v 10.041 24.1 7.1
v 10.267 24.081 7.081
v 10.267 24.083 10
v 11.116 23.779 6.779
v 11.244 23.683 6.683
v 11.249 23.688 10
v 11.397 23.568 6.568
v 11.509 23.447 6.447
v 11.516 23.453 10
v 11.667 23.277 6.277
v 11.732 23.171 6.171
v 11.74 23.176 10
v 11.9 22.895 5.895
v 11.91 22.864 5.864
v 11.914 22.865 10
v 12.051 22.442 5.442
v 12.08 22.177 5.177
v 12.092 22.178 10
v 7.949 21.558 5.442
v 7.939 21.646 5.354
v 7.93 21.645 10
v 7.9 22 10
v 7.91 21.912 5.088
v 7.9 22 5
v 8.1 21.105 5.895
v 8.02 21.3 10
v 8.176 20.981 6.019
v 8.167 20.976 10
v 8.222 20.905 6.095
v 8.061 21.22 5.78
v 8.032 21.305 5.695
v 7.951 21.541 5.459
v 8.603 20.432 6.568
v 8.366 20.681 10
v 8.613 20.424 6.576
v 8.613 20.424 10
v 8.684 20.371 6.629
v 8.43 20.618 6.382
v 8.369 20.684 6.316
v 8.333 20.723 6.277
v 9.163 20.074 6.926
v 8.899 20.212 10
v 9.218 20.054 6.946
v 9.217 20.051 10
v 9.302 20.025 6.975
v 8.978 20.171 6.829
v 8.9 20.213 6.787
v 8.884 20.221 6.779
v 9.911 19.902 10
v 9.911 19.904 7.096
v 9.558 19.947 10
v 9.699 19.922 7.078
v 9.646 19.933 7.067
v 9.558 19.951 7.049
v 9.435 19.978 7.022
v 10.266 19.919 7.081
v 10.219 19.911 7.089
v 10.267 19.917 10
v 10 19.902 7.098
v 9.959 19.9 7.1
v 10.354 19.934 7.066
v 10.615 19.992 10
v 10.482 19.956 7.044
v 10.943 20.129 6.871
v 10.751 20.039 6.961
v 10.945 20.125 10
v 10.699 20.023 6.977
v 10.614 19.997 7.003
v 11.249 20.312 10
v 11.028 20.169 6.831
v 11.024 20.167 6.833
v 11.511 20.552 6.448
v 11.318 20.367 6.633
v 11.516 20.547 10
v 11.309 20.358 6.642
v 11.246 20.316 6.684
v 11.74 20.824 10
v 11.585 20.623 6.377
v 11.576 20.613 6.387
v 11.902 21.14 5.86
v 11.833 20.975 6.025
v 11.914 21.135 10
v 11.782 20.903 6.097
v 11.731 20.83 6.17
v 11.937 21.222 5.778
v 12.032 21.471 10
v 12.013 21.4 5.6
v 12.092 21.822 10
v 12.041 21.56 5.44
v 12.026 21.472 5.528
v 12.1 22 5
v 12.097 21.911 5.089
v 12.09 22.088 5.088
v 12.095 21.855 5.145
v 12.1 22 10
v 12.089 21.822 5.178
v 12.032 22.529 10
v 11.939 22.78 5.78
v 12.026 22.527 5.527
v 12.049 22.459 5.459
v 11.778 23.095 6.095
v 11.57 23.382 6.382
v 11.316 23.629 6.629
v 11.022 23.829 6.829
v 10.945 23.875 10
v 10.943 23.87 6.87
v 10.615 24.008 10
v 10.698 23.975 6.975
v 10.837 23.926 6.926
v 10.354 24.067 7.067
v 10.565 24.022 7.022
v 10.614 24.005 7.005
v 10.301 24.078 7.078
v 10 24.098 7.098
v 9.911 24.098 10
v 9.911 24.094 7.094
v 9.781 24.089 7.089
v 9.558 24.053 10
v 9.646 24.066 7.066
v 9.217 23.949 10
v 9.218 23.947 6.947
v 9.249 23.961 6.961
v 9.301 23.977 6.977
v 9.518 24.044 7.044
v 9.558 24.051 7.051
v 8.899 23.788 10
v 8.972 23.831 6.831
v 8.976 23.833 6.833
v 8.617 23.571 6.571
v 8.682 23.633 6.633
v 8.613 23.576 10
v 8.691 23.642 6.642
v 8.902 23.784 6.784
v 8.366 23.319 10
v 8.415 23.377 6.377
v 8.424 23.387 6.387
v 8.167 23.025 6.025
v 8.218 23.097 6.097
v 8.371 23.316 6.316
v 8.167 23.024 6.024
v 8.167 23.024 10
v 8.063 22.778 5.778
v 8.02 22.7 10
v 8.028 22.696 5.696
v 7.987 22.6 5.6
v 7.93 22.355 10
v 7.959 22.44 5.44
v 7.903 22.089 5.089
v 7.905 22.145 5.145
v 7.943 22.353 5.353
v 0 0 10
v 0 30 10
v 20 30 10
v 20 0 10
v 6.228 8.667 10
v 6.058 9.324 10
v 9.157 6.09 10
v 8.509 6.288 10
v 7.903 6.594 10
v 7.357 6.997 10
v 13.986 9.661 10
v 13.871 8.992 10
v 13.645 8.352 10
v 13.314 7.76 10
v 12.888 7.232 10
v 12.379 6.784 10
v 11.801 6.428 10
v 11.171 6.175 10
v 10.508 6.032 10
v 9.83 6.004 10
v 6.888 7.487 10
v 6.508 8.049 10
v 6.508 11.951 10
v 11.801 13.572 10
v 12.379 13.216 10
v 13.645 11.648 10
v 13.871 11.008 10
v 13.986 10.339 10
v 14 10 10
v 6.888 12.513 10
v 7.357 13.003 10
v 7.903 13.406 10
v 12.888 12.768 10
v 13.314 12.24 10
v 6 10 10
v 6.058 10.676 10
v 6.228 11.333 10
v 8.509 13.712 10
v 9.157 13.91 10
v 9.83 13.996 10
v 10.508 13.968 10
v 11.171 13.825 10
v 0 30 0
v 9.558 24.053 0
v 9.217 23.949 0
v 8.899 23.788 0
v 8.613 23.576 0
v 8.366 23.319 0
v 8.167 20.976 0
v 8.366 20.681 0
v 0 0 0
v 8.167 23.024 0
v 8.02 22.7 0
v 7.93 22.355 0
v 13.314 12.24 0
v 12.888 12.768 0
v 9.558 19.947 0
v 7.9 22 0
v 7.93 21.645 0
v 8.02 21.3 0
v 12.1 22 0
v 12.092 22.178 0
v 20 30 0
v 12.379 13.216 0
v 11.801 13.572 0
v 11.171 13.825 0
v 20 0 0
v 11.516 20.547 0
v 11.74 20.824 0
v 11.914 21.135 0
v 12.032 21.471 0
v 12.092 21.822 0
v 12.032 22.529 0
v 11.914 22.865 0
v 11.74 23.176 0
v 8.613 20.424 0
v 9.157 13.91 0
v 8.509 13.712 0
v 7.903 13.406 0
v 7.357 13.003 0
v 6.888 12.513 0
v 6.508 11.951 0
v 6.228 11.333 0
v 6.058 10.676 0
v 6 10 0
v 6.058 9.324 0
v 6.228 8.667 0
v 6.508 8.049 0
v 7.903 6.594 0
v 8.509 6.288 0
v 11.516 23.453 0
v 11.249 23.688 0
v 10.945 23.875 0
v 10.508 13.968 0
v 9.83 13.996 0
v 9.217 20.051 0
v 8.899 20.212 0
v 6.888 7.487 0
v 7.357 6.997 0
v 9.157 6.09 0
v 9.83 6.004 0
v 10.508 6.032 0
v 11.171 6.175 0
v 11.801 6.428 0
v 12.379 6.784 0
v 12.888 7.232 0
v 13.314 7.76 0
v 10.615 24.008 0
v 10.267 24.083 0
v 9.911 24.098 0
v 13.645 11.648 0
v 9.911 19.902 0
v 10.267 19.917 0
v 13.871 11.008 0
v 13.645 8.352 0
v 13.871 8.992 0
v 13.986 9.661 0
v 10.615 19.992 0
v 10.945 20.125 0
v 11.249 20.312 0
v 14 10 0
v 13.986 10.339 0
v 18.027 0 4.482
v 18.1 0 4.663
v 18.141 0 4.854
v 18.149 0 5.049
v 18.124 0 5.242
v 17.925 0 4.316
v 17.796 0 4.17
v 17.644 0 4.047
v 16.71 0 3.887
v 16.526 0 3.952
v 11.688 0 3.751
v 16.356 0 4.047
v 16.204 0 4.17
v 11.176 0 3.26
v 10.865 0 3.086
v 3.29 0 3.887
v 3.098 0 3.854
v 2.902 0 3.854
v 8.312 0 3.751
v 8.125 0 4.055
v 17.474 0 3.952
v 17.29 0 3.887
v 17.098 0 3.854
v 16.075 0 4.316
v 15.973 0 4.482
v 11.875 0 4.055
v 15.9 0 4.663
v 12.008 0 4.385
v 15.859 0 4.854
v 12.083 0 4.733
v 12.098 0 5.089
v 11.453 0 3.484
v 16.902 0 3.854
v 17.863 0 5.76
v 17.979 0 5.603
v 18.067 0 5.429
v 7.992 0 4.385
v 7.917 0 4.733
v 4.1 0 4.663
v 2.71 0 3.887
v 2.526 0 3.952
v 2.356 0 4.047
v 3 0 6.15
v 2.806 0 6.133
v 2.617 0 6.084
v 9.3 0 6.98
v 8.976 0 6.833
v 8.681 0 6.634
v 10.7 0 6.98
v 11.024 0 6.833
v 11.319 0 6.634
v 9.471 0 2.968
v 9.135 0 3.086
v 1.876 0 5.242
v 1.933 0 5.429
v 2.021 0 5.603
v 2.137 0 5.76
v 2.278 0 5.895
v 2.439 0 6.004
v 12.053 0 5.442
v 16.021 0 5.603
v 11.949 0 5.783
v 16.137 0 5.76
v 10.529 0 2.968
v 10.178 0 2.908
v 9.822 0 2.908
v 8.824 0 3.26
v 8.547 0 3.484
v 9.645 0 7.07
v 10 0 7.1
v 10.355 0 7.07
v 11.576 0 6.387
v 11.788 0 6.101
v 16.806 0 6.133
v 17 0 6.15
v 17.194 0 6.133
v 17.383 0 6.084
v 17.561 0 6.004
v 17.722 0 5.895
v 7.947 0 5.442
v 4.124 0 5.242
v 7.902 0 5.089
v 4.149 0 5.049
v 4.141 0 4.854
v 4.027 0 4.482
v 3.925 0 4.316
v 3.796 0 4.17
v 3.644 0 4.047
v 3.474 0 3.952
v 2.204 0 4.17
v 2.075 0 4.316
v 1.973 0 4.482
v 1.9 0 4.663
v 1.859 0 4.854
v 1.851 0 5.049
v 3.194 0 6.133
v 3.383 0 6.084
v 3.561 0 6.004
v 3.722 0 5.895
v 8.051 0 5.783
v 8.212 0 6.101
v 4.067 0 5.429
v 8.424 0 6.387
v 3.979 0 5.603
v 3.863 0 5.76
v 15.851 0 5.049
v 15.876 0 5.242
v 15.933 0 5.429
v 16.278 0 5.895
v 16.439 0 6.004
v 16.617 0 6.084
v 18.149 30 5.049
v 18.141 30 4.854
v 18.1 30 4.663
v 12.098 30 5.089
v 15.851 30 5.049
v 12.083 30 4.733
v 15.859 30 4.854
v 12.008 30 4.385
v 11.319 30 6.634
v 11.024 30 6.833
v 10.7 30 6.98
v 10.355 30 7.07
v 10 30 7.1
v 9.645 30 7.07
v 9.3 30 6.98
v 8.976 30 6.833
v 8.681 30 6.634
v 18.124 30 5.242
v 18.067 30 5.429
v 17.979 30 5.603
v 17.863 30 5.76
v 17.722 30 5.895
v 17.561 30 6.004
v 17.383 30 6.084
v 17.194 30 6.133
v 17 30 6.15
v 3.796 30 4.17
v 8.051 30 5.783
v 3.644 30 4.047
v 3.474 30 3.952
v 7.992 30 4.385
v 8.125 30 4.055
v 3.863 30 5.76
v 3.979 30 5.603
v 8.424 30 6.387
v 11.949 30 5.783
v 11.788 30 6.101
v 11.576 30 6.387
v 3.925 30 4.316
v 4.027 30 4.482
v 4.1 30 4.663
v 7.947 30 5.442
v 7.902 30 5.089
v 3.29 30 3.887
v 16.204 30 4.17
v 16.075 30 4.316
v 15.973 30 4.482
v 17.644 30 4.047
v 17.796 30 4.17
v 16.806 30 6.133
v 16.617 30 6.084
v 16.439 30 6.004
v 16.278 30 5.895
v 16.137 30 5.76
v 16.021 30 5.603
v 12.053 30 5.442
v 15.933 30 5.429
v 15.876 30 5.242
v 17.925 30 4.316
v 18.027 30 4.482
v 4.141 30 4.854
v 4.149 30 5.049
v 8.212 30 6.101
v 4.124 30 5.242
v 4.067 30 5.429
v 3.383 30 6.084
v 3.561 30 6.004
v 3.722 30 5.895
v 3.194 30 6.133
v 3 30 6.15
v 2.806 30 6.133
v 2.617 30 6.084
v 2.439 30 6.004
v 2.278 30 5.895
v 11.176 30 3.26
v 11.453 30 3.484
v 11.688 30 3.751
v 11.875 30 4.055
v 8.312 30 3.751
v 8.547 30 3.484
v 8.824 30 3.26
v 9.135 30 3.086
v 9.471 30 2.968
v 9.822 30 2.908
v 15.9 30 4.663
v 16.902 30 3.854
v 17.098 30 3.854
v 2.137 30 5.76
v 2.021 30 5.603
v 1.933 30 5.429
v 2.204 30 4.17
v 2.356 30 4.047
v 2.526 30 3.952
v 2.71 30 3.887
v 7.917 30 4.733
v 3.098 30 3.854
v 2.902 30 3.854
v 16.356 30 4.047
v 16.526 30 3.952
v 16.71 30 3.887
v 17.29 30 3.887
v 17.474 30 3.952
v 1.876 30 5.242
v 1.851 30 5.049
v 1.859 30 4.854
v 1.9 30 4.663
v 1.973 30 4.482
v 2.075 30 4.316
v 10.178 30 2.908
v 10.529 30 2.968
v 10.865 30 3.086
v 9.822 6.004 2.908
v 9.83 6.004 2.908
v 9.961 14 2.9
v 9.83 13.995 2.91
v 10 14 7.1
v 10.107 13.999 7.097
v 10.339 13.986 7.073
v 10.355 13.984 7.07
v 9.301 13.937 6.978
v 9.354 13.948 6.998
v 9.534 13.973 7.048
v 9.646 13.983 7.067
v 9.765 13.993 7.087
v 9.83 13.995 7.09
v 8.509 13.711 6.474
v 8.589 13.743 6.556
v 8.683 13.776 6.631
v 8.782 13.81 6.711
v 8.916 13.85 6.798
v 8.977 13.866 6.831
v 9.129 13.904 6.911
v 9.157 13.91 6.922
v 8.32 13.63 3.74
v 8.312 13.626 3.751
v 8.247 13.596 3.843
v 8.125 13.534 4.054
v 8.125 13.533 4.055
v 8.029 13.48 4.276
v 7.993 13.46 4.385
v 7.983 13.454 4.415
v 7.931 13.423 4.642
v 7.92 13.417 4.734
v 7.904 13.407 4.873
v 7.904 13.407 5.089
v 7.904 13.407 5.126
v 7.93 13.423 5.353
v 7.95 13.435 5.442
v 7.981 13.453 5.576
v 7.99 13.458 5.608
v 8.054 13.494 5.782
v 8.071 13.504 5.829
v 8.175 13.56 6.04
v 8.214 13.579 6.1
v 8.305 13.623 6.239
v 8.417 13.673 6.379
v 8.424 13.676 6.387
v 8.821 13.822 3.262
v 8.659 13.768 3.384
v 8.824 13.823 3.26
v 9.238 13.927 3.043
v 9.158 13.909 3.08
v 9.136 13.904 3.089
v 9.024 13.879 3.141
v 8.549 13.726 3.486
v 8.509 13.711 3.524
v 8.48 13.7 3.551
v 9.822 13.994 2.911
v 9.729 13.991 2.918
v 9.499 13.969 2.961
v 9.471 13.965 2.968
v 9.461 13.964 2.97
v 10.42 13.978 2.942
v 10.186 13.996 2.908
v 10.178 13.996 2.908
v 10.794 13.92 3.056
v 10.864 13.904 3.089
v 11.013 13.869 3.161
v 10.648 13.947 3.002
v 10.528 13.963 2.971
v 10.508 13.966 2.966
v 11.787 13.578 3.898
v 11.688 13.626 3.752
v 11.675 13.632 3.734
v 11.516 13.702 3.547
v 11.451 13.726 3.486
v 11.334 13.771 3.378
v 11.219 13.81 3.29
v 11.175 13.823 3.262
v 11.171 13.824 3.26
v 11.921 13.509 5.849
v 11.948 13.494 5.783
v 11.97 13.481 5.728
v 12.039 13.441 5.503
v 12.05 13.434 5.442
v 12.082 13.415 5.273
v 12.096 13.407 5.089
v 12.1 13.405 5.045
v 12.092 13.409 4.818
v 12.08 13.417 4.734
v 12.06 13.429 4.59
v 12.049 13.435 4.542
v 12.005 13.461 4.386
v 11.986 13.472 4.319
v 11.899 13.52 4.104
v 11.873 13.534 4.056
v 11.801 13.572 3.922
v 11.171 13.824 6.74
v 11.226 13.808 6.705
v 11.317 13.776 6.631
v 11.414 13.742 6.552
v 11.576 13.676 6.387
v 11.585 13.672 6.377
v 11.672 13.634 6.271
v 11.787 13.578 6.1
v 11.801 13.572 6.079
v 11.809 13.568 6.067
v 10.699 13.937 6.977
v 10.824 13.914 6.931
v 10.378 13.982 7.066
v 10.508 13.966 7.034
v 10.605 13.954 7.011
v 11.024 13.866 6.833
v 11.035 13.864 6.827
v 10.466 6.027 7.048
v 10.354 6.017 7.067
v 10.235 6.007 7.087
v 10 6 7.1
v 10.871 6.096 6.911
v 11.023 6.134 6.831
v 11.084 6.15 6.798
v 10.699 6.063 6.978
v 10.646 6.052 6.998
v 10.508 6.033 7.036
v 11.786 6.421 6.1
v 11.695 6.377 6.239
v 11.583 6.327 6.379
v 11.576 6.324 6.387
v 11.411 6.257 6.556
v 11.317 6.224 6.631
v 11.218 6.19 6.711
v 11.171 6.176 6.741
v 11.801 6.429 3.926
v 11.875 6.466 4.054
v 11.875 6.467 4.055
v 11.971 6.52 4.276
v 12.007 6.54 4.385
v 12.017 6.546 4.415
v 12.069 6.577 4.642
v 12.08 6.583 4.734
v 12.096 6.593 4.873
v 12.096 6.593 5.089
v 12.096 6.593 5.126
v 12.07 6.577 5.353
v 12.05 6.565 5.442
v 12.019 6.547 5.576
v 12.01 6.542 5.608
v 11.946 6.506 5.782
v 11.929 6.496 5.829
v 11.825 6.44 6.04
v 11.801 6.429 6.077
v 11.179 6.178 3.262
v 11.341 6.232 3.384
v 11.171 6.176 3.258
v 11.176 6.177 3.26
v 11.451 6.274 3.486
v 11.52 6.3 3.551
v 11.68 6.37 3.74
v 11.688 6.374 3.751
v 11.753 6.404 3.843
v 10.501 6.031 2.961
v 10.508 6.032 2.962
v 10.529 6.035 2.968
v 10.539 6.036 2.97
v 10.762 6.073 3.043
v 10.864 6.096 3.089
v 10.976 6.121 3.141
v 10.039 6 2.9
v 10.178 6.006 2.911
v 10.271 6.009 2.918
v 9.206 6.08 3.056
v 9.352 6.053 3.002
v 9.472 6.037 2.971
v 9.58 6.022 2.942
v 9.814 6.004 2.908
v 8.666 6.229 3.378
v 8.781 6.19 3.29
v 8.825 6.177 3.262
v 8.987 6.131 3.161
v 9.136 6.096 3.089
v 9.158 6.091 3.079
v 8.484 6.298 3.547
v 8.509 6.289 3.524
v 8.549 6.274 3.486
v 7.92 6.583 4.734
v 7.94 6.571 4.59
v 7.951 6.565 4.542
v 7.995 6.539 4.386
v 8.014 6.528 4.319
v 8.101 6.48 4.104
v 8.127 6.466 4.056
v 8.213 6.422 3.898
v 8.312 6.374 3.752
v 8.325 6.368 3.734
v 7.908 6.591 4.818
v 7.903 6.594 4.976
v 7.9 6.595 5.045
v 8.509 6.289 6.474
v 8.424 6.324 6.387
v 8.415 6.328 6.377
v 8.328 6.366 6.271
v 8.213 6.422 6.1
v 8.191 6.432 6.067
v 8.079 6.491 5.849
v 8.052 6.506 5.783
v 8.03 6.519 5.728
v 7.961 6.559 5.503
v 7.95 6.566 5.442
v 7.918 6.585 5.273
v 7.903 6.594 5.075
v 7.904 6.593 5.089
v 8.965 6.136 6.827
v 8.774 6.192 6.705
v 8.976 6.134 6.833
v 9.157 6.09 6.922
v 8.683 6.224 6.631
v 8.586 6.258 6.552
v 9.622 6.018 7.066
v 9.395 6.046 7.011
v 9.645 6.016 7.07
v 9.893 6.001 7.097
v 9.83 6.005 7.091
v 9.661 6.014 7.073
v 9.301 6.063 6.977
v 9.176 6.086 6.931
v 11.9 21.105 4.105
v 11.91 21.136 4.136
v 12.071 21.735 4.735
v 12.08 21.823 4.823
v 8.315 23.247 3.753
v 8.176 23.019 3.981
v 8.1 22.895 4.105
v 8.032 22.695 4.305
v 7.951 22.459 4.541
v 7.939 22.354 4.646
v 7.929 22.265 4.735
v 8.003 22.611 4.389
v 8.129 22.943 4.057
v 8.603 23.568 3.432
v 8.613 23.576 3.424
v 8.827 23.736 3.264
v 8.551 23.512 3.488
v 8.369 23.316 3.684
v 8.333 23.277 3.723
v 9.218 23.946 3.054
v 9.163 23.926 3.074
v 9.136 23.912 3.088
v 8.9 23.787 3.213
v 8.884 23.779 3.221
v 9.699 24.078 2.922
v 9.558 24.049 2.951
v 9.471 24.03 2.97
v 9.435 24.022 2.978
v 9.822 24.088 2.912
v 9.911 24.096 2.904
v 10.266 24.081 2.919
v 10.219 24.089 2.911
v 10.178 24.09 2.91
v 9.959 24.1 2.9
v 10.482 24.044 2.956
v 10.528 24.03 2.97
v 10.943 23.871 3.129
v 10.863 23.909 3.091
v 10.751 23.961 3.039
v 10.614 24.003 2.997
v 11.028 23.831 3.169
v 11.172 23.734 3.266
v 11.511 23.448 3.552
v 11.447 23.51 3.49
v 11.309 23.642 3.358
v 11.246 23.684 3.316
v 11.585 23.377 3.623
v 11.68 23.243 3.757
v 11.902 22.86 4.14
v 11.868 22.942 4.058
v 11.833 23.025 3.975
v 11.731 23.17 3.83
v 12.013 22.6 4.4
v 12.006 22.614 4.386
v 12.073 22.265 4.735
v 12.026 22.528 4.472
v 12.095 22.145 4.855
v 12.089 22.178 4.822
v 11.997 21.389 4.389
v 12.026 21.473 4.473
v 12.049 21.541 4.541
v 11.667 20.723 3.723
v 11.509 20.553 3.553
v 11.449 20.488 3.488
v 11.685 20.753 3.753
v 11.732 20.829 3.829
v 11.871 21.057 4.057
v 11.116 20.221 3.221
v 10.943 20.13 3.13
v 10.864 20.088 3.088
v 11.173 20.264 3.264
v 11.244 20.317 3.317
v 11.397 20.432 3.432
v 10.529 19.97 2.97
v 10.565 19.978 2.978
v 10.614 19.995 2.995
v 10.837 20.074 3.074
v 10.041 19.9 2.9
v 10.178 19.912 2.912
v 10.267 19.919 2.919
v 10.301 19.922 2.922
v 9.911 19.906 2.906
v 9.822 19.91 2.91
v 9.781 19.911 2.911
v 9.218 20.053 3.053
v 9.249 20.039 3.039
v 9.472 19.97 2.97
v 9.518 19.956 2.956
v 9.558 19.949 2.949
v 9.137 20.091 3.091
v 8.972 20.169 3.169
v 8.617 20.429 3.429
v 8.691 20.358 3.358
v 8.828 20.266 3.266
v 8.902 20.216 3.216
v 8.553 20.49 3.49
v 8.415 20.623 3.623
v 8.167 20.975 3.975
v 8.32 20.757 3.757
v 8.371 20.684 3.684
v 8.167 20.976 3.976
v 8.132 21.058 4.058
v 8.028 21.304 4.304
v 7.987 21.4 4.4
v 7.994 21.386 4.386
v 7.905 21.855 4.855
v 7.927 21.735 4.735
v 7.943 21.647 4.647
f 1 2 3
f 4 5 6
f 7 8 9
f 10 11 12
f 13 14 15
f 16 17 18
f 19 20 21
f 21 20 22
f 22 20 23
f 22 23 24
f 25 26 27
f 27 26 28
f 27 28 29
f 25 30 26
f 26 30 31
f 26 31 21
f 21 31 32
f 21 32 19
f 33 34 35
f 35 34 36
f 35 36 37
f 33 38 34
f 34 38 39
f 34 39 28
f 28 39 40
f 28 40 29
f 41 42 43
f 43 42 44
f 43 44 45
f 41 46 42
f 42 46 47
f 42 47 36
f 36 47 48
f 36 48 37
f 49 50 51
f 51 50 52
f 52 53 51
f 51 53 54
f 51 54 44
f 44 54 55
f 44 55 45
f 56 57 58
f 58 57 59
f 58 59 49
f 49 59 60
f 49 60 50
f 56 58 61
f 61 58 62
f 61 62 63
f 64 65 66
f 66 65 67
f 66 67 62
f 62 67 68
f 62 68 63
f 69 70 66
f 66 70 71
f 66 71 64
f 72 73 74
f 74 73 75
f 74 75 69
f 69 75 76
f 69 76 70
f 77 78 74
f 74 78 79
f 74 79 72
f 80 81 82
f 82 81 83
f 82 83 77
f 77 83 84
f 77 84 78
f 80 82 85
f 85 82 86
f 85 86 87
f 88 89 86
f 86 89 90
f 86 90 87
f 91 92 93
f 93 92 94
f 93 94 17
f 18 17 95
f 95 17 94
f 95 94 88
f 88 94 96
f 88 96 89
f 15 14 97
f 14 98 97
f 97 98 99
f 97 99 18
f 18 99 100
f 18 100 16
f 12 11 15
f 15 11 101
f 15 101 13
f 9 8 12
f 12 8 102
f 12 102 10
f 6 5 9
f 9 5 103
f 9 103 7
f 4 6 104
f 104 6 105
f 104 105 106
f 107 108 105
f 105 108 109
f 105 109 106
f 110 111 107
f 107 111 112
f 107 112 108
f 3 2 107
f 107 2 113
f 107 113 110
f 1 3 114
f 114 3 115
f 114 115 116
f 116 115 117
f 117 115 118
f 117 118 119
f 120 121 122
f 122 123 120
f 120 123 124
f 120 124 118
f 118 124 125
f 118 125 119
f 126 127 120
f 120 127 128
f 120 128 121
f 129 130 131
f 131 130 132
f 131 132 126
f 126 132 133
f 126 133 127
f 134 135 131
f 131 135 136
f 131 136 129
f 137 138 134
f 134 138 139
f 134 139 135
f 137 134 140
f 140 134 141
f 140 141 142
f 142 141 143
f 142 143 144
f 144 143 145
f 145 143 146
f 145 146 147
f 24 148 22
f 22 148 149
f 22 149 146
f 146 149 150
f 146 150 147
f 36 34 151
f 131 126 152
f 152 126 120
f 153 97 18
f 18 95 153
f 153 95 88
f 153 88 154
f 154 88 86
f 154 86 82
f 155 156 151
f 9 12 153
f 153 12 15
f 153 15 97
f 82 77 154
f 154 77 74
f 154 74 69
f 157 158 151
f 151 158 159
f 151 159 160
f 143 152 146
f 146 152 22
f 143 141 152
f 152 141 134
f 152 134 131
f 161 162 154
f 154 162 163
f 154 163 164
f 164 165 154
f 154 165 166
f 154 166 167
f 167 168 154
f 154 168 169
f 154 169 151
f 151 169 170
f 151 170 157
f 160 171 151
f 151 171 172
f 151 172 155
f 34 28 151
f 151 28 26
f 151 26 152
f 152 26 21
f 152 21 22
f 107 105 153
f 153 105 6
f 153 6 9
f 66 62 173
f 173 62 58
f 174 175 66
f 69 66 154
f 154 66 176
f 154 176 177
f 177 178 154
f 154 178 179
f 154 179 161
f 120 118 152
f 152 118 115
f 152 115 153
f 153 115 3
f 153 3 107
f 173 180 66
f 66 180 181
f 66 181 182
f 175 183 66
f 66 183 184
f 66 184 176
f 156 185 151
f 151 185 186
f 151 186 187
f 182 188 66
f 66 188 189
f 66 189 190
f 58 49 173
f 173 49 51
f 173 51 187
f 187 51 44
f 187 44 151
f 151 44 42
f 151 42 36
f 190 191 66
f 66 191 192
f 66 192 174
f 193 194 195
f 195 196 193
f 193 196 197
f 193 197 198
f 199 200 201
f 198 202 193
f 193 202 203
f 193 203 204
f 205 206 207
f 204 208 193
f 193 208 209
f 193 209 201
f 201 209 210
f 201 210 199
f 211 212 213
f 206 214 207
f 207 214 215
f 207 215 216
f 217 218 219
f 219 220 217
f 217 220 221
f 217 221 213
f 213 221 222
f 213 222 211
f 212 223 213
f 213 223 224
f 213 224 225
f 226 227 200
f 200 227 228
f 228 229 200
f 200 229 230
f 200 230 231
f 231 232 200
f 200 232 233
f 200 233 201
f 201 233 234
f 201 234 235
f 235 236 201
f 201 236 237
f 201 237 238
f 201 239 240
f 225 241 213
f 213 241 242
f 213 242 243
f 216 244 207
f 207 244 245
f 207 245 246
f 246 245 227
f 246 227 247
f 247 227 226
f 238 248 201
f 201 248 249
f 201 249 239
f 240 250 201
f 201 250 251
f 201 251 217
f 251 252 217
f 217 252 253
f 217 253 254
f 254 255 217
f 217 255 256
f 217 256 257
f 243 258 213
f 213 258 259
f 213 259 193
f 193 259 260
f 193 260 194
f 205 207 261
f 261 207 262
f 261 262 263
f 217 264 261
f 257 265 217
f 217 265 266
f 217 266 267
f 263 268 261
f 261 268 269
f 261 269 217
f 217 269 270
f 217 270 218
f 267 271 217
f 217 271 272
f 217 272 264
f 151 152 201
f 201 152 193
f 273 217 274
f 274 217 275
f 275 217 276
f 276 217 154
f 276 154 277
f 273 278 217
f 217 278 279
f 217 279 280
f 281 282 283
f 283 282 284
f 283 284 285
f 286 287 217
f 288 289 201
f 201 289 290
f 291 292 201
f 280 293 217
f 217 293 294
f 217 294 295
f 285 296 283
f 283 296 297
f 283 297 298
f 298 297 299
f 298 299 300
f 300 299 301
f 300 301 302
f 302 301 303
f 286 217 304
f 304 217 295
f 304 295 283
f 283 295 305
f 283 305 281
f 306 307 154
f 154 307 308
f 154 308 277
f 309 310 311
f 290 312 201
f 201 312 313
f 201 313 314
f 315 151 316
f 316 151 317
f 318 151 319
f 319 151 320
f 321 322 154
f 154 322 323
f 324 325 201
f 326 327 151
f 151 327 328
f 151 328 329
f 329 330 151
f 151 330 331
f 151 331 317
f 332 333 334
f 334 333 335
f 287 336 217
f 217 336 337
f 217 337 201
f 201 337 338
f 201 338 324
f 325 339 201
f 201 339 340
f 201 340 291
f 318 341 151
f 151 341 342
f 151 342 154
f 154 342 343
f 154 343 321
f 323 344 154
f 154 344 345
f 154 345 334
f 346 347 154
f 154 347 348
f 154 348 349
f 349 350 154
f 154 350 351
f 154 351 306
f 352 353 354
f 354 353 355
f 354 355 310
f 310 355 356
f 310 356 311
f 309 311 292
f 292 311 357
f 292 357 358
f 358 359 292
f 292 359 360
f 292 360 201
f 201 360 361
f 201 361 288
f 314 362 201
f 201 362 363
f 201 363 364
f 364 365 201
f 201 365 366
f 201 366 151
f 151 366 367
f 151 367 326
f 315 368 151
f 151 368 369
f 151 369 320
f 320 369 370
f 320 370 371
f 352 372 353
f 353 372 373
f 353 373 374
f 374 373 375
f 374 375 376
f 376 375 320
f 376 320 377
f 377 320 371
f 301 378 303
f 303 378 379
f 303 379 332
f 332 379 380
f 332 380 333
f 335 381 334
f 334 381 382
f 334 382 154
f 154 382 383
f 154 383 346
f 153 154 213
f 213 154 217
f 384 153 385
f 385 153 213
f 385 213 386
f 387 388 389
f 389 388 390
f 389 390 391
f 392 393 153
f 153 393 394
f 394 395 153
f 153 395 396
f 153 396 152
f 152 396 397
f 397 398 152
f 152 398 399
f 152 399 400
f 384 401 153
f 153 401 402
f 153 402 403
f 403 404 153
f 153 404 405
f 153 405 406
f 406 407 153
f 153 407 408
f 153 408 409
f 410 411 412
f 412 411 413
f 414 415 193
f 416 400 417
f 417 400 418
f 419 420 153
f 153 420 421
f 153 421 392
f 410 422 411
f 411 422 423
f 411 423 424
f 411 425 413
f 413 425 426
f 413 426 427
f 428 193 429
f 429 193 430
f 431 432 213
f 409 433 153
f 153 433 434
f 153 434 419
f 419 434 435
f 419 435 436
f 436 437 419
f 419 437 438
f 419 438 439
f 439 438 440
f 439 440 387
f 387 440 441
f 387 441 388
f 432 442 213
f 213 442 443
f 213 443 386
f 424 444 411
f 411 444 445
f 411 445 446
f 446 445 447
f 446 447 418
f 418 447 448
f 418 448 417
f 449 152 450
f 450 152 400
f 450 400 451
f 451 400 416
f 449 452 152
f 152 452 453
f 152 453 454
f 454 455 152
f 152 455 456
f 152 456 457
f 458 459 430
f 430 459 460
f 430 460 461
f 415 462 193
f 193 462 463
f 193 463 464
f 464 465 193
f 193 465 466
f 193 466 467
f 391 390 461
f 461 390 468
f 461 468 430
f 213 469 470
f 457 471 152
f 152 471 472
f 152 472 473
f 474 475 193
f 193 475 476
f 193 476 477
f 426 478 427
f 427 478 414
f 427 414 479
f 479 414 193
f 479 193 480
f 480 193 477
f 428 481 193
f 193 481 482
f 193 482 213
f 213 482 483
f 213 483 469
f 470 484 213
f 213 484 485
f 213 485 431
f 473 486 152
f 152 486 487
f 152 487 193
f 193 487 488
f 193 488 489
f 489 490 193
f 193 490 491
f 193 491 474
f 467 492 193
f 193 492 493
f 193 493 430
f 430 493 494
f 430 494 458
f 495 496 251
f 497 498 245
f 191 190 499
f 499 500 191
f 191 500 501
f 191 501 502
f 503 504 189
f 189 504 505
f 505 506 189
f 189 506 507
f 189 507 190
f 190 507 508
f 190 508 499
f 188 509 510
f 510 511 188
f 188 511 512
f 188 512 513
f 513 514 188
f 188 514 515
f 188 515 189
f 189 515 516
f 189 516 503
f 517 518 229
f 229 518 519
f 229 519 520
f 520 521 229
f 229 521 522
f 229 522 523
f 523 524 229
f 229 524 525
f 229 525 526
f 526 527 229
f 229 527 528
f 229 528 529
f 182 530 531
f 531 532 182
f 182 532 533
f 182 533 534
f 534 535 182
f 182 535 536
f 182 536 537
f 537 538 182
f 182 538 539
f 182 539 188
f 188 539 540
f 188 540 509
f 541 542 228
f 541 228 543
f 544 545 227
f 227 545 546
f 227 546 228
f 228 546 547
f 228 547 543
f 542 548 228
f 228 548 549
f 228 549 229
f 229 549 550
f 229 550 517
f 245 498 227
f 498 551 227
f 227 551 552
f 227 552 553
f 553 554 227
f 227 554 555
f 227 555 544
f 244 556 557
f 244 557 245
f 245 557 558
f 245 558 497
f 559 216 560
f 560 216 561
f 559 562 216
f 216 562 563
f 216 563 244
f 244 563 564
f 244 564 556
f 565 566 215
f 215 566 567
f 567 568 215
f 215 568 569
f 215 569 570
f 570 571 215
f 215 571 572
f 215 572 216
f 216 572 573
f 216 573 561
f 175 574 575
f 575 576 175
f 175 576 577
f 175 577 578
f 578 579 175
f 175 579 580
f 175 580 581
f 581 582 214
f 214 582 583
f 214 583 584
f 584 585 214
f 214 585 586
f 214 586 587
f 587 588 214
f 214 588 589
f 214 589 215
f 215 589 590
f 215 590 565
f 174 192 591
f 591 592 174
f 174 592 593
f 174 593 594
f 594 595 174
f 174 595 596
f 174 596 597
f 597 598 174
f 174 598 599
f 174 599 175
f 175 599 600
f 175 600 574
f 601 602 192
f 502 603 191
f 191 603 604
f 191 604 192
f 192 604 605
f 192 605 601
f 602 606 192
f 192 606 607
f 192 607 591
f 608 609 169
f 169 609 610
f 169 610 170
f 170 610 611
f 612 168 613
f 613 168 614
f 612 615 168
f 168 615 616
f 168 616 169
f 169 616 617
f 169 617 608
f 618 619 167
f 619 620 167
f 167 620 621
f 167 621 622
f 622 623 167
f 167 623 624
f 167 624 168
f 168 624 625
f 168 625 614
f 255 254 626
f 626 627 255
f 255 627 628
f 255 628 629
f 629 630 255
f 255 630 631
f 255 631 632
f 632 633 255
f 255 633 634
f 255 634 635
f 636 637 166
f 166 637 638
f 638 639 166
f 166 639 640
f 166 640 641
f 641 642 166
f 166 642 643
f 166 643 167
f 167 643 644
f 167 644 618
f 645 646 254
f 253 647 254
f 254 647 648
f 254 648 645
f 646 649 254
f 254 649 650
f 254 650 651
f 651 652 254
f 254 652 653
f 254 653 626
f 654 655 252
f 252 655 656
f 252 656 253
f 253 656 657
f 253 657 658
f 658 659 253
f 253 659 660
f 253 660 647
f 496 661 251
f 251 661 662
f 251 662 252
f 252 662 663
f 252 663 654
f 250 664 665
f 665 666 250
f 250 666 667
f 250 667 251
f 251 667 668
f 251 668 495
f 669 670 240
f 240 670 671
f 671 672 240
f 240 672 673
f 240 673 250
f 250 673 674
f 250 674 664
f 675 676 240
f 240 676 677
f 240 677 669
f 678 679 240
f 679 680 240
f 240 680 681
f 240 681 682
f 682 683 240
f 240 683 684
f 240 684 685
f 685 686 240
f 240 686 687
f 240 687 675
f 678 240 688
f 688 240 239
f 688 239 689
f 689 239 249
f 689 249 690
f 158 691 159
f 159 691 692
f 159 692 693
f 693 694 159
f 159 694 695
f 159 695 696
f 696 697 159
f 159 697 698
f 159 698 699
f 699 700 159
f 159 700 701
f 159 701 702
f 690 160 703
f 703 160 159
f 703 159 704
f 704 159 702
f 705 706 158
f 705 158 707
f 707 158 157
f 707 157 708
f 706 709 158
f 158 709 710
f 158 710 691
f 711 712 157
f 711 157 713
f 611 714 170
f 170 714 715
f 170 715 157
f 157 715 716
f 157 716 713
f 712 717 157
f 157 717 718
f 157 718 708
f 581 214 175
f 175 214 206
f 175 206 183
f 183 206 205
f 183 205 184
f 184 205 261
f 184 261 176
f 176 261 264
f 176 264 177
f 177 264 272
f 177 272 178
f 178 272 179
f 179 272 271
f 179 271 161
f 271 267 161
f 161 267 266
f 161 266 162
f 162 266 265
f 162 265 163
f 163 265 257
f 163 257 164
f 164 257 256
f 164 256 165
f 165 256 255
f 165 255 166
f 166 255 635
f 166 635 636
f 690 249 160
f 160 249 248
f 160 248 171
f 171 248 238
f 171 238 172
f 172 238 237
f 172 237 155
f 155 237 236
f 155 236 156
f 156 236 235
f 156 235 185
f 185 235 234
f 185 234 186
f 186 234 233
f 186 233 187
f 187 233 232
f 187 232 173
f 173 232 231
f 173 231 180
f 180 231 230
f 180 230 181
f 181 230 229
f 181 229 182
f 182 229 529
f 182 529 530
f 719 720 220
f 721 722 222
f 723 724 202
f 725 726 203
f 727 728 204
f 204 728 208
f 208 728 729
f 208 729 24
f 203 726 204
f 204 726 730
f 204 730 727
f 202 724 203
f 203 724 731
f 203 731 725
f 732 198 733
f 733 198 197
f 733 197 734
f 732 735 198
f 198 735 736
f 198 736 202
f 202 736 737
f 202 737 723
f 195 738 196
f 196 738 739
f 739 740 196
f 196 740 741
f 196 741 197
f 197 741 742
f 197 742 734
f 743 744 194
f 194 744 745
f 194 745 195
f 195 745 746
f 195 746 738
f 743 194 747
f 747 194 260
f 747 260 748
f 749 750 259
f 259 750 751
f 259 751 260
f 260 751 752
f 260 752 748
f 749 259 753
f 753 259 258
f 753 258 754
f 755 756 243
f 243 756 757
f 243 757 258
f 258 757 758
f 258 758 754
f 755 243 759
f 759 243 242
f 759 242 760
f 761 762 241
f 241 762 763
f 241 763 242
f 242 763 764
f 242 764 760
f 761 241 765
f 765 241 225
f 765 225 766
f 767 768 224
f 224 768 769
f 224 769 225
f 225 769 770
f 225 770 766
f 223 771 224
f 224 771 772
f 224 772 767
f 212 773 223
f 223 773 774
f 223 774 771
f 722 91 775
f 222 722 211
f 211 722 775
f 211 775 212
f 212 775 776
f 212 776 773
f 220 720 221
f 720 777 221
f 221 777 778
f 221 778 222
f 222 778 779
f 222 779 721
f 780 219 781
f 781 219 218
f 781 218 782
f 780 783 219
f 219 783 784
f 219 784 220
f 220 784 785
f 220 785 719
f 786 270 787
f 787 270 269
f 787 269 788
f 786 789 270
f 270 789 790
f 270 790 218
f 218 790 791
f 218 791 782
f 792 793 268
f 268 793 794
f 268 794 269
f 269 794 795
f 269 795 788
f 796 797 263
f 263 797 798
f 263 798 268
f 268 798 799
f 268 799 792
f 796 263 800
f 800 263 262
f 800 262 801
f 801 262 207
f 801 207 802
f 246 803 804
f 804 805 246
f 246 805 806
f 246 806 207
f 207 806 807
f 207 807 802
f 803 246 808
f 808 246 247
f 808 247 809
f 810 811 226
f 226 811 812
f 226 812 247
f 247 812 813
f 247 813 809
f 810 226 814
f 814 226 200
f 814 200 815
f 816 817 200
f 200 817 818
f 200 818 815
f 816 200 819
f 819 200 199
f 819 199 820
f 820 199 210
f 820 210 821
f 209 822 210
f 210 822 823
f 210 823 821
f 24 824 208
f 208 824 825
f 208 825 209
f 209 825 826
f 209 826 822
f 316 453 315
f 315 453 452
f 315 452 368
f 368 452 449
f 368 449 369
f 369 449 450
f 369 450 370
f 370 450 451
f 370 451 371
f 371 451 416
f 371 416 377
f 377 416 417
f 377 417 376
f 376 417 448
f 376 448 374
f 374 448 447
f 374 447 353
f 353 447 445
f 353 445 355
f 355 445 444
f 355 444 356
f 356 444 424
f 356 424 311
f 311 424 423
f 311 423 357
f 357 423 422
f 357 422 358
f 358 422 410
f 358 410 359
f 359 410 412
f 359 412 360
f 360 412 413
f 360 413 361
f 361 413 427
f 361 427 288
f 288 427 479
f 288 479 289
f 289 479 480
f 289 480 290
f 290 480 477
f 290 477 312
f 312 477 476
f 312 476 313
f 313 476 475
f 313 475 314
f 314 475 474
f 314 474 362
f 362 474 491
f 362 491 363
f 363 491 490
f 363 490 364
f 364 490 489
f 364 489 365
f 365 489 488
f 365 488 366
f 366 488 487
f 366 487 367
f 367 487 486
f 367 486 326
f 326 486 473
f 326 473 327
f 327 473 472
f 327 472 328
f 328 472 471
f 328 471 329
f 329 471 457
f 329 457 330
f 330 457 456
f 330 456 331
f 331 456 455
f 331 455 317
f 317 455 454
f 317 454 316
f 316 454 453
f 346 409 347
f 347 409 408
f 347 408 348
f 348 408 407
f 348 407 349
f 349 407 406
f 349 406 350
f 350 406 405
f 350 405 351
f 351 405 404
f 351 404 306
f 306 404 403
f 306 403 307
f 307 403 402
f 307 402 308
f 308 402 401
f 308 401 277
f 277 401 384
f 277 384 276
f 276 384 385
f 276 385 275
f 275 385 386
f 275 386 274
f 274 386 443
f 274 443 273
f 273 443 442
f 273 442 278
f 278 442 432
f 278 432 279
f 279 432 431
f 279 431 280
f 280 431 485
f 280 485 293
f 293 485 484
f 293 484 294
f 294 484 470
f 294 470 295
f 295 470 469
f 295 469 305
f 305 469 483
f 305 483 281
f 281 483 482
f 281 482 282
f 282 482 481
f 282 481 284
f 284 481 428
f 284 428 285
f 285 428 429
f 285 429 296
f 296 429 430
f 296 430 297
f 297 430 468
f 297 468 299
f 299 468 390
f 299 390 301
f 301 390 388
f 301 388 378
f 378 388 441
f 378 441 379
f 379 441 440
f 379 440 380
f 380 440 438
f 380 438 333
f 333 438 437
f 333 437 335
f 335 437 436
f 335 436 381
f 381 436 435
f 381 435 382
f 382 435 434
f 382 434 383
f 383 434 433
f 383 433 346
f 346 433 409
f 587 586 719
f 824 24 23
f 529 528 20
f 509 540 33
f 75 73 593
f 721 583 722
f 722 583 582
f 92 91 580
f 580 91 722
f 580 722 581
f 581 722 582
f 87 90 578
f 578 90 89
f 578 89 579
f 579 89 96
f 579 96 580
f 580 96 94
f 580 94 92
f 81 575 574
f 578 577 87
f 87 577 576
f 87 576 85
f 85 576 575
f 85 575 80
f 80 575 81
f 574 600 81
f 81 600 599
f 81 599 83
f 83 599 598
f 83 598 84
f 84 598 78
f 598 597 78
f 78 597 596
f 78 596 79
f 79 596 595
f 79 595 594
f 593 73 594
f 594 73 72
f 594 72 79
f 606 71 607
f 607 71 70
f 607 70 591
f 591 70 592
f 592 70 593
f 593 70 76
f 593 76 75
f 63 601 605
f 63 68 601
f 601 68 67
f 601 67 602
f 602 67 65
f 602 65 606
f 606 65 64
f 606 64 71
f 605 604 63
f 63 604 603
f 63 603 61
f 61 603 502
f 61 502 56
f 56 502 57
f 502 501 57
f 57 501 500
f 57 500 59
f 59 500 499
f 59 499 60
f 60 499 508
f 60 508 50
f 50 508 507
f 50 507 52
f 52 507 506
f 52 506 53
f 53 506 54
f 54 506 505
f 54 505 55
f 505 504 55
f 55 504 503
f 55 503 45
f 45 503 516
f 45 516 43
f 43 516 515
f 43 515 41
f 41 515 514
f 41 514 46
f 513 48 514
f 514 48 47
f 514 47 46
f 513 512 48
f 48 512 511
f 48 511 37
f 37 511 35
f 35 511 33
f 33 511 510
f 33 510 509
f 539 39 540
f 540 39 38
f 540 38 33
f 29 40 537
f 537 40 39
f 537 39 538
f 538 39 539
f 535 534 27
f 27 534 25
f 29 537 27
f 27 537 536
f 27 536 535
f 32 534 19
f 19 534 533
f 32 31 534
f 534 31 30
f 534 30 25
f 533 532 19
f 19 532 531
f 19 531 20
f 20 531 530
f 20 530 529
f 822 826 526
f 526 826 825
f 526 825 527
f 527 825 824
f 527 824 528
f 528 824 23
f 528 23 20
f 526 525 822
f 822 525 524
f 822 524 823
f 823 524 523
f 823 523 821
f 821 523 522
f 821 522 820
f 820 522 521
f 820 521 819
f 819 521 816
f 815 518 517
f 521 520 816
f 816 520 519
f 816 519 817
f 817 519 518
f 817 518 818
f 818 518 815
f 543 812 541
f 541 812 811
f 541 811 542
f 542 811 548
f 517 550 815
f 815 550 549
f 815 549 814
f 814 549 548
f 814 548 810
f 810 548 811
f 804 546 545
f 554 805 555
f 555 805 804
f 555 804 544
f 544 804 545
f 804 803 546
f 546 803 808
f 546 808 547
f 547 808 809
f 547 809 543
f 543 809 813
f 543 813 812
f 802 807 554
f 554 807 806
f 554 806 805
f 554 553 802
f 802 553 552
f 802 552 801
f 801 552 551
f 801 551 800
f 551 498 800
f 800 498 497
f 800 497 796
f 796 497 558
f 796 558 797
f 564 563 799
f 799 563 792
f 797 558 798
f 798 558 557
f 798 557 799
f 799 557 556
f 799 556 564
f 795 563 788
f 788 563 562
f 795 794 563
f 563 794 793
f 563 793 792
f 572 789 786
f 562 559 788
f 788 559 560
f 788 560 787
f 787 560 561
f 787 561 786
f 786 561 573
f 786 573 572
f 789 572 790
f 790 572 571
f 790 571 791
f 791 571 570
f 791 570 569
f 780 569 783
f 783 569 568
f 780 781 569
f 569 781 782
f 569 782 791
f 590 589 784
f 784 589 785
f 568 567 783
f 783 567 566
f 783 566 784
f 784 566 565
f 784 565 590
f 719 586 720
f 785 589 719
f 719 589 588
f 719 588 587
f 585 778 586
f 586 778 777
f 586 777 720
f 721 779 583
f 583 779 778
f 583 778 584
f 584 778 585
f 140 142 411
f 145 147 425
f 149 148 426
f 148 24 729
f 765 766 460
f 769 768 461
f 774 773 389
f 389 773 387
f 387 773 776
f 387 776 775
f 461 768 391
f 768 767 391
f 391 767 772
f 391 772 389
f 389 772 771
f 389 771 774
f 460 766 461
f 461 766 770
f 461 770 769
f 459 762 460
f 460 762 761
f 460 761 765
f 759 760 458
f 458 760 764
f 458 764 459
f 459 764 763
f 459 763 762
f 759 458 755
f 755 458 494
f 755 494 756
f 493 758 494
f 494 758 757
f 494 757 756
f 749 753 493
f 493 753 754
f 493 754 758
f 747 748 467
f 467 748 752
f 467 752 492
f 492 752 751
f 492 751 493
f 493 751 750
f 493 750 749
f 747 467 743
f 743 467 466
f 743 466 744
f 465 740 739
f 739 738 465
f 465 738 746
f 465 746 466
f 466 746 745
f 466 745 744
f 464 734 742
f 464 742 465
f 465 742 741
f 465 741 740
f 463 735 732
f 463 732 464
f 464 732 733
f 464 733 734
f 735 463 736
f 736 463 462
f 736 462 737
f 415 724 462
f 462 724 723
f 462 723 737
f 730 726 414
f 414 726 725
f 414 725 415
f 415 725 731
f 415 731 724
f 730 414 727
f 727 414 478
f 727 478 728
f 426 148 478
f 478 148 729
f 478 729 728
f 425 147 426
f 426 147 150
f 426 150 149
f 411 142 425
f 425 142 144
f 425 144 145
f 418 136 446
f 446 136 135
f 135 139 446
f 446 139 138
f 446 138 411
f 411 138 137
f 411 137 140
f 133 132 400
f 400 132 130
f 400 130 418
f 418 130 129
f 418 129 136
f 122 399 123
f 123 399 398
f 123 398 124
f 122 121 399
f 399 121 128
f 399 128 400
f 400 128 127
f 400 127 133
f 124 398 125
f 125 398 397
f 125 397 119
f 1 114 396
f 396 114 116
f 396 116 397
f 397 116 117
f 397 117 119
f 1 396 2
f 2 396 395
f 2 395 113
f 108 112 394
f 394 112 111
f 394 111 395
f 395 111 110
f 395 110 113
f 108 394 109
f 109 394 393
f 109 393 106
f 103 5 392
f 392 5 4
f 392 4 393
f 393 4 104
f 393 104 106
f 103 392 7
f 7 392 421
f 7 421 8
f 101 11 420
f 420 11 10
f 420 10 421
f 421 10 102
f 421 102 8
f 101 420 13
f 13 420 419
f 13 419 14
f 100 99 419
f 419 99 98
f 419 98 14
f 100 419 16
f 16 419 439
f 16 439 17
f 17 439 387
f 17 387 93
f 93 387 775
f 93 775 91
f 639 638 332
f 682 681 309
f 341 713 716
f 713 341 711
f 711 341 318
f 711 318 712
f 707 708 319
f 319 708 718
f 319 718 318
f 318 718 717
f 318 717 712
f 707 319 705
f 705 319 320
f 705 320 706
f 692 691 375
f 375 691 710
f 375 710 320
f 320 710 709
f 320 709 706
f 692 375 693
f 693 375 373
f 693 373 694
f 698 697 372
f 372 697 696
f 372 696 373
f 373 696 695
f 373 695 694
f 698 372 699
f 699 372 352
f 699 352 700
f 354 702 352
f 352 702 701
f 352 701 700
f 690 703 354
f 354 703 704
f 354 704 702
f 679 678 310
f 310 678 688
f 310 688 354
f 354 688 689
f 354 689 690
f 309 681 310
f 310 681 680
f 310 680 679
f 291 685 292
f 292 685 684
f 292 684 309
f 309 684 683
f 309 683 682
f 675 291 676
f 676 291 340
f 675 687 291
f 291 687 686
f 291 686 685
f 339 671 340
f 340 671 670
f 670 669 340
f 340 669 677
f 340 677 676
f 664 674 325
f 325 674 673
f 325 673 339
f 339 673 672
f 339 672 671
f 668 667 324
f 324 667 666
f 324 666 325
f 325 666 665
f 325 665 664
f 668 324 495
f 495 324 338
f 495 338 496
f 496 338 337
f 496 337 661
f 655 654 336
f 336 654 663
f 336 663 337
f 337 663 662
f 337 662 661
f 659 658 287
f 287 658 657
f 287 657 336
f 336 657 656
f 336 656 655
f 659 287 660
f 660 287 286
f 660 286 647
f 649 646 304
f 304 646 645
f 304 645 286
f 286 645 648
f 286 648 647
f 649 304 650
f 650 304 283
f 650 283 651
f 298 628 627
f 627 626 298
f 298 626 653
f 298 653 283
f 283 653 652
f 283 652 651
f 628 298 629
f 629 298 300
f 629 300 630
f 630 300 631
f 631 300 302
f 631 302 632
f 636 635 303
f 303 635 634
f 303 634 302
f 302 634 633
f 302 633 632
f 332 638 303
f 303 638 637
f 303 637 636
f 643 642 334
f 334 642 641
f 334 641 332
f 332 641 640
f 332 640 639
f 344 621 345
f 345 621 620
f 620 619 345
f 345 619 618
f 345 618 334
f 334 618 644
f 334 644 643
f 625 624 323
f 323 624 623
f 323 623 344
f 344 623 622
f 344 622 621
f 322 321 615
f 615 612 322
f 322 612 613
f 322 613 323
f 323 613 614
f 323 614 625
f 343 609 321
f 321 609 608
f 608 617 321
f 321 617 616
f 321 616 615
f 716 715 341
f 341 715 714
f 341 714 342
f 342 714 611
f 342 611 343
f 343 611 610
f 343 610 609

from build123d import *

# Parameters (mm, degrees)
SKETCH1_W           = 20
SKETCH1_H           = 30
SKETCH1_R           = 4
SKETCH1_R_2         = 2.1
BOSS_EXTRUDE1_DEPTH = 10
SKETCH2_R           = 1.15
SKETCH2_R_2         = 2.1
CUT_EXTRUDE1_DEPTH  = 31


with BuildPart() as part:
    # Sketch1 → Boss-Extrude1 (new body)
    with BuildSketch(Plane.XY):
        with Locations((10, 15)):
            Rectangle(SKETCH1_W, SKETCH1_H)
        with Locations((10, 10)):
            Circle(SKETCH1_R, mode=Mode.SUBTRACT)
        with Locations((10, 22)):
            Circle(SKETCH1_R_2, mode=Mode.SUBTRACT)
    extrude(amount=BOSS_EXTRUDE1_DEPTH)

    # Sketch2 → Cut-Extrude1 (cut, through all)
    with BuildSketch(Plane(origin=(0, 30, 0), x_dir=(1, 0, 0), z_dir=(0, 1, 0))):
        with Locations((3, -5)):
            Circle(SKETCH2_R)
        with Locations((17, -5)):
            Circle(SKETCH2_R)
        with Locations((10, -5)):
            Circle(SKETCH2_R_2)
    extrude(amount=-CUT_EXTRUDE1_DEPTH, mode=Mode.SUBTRACT)


solid = part.part
